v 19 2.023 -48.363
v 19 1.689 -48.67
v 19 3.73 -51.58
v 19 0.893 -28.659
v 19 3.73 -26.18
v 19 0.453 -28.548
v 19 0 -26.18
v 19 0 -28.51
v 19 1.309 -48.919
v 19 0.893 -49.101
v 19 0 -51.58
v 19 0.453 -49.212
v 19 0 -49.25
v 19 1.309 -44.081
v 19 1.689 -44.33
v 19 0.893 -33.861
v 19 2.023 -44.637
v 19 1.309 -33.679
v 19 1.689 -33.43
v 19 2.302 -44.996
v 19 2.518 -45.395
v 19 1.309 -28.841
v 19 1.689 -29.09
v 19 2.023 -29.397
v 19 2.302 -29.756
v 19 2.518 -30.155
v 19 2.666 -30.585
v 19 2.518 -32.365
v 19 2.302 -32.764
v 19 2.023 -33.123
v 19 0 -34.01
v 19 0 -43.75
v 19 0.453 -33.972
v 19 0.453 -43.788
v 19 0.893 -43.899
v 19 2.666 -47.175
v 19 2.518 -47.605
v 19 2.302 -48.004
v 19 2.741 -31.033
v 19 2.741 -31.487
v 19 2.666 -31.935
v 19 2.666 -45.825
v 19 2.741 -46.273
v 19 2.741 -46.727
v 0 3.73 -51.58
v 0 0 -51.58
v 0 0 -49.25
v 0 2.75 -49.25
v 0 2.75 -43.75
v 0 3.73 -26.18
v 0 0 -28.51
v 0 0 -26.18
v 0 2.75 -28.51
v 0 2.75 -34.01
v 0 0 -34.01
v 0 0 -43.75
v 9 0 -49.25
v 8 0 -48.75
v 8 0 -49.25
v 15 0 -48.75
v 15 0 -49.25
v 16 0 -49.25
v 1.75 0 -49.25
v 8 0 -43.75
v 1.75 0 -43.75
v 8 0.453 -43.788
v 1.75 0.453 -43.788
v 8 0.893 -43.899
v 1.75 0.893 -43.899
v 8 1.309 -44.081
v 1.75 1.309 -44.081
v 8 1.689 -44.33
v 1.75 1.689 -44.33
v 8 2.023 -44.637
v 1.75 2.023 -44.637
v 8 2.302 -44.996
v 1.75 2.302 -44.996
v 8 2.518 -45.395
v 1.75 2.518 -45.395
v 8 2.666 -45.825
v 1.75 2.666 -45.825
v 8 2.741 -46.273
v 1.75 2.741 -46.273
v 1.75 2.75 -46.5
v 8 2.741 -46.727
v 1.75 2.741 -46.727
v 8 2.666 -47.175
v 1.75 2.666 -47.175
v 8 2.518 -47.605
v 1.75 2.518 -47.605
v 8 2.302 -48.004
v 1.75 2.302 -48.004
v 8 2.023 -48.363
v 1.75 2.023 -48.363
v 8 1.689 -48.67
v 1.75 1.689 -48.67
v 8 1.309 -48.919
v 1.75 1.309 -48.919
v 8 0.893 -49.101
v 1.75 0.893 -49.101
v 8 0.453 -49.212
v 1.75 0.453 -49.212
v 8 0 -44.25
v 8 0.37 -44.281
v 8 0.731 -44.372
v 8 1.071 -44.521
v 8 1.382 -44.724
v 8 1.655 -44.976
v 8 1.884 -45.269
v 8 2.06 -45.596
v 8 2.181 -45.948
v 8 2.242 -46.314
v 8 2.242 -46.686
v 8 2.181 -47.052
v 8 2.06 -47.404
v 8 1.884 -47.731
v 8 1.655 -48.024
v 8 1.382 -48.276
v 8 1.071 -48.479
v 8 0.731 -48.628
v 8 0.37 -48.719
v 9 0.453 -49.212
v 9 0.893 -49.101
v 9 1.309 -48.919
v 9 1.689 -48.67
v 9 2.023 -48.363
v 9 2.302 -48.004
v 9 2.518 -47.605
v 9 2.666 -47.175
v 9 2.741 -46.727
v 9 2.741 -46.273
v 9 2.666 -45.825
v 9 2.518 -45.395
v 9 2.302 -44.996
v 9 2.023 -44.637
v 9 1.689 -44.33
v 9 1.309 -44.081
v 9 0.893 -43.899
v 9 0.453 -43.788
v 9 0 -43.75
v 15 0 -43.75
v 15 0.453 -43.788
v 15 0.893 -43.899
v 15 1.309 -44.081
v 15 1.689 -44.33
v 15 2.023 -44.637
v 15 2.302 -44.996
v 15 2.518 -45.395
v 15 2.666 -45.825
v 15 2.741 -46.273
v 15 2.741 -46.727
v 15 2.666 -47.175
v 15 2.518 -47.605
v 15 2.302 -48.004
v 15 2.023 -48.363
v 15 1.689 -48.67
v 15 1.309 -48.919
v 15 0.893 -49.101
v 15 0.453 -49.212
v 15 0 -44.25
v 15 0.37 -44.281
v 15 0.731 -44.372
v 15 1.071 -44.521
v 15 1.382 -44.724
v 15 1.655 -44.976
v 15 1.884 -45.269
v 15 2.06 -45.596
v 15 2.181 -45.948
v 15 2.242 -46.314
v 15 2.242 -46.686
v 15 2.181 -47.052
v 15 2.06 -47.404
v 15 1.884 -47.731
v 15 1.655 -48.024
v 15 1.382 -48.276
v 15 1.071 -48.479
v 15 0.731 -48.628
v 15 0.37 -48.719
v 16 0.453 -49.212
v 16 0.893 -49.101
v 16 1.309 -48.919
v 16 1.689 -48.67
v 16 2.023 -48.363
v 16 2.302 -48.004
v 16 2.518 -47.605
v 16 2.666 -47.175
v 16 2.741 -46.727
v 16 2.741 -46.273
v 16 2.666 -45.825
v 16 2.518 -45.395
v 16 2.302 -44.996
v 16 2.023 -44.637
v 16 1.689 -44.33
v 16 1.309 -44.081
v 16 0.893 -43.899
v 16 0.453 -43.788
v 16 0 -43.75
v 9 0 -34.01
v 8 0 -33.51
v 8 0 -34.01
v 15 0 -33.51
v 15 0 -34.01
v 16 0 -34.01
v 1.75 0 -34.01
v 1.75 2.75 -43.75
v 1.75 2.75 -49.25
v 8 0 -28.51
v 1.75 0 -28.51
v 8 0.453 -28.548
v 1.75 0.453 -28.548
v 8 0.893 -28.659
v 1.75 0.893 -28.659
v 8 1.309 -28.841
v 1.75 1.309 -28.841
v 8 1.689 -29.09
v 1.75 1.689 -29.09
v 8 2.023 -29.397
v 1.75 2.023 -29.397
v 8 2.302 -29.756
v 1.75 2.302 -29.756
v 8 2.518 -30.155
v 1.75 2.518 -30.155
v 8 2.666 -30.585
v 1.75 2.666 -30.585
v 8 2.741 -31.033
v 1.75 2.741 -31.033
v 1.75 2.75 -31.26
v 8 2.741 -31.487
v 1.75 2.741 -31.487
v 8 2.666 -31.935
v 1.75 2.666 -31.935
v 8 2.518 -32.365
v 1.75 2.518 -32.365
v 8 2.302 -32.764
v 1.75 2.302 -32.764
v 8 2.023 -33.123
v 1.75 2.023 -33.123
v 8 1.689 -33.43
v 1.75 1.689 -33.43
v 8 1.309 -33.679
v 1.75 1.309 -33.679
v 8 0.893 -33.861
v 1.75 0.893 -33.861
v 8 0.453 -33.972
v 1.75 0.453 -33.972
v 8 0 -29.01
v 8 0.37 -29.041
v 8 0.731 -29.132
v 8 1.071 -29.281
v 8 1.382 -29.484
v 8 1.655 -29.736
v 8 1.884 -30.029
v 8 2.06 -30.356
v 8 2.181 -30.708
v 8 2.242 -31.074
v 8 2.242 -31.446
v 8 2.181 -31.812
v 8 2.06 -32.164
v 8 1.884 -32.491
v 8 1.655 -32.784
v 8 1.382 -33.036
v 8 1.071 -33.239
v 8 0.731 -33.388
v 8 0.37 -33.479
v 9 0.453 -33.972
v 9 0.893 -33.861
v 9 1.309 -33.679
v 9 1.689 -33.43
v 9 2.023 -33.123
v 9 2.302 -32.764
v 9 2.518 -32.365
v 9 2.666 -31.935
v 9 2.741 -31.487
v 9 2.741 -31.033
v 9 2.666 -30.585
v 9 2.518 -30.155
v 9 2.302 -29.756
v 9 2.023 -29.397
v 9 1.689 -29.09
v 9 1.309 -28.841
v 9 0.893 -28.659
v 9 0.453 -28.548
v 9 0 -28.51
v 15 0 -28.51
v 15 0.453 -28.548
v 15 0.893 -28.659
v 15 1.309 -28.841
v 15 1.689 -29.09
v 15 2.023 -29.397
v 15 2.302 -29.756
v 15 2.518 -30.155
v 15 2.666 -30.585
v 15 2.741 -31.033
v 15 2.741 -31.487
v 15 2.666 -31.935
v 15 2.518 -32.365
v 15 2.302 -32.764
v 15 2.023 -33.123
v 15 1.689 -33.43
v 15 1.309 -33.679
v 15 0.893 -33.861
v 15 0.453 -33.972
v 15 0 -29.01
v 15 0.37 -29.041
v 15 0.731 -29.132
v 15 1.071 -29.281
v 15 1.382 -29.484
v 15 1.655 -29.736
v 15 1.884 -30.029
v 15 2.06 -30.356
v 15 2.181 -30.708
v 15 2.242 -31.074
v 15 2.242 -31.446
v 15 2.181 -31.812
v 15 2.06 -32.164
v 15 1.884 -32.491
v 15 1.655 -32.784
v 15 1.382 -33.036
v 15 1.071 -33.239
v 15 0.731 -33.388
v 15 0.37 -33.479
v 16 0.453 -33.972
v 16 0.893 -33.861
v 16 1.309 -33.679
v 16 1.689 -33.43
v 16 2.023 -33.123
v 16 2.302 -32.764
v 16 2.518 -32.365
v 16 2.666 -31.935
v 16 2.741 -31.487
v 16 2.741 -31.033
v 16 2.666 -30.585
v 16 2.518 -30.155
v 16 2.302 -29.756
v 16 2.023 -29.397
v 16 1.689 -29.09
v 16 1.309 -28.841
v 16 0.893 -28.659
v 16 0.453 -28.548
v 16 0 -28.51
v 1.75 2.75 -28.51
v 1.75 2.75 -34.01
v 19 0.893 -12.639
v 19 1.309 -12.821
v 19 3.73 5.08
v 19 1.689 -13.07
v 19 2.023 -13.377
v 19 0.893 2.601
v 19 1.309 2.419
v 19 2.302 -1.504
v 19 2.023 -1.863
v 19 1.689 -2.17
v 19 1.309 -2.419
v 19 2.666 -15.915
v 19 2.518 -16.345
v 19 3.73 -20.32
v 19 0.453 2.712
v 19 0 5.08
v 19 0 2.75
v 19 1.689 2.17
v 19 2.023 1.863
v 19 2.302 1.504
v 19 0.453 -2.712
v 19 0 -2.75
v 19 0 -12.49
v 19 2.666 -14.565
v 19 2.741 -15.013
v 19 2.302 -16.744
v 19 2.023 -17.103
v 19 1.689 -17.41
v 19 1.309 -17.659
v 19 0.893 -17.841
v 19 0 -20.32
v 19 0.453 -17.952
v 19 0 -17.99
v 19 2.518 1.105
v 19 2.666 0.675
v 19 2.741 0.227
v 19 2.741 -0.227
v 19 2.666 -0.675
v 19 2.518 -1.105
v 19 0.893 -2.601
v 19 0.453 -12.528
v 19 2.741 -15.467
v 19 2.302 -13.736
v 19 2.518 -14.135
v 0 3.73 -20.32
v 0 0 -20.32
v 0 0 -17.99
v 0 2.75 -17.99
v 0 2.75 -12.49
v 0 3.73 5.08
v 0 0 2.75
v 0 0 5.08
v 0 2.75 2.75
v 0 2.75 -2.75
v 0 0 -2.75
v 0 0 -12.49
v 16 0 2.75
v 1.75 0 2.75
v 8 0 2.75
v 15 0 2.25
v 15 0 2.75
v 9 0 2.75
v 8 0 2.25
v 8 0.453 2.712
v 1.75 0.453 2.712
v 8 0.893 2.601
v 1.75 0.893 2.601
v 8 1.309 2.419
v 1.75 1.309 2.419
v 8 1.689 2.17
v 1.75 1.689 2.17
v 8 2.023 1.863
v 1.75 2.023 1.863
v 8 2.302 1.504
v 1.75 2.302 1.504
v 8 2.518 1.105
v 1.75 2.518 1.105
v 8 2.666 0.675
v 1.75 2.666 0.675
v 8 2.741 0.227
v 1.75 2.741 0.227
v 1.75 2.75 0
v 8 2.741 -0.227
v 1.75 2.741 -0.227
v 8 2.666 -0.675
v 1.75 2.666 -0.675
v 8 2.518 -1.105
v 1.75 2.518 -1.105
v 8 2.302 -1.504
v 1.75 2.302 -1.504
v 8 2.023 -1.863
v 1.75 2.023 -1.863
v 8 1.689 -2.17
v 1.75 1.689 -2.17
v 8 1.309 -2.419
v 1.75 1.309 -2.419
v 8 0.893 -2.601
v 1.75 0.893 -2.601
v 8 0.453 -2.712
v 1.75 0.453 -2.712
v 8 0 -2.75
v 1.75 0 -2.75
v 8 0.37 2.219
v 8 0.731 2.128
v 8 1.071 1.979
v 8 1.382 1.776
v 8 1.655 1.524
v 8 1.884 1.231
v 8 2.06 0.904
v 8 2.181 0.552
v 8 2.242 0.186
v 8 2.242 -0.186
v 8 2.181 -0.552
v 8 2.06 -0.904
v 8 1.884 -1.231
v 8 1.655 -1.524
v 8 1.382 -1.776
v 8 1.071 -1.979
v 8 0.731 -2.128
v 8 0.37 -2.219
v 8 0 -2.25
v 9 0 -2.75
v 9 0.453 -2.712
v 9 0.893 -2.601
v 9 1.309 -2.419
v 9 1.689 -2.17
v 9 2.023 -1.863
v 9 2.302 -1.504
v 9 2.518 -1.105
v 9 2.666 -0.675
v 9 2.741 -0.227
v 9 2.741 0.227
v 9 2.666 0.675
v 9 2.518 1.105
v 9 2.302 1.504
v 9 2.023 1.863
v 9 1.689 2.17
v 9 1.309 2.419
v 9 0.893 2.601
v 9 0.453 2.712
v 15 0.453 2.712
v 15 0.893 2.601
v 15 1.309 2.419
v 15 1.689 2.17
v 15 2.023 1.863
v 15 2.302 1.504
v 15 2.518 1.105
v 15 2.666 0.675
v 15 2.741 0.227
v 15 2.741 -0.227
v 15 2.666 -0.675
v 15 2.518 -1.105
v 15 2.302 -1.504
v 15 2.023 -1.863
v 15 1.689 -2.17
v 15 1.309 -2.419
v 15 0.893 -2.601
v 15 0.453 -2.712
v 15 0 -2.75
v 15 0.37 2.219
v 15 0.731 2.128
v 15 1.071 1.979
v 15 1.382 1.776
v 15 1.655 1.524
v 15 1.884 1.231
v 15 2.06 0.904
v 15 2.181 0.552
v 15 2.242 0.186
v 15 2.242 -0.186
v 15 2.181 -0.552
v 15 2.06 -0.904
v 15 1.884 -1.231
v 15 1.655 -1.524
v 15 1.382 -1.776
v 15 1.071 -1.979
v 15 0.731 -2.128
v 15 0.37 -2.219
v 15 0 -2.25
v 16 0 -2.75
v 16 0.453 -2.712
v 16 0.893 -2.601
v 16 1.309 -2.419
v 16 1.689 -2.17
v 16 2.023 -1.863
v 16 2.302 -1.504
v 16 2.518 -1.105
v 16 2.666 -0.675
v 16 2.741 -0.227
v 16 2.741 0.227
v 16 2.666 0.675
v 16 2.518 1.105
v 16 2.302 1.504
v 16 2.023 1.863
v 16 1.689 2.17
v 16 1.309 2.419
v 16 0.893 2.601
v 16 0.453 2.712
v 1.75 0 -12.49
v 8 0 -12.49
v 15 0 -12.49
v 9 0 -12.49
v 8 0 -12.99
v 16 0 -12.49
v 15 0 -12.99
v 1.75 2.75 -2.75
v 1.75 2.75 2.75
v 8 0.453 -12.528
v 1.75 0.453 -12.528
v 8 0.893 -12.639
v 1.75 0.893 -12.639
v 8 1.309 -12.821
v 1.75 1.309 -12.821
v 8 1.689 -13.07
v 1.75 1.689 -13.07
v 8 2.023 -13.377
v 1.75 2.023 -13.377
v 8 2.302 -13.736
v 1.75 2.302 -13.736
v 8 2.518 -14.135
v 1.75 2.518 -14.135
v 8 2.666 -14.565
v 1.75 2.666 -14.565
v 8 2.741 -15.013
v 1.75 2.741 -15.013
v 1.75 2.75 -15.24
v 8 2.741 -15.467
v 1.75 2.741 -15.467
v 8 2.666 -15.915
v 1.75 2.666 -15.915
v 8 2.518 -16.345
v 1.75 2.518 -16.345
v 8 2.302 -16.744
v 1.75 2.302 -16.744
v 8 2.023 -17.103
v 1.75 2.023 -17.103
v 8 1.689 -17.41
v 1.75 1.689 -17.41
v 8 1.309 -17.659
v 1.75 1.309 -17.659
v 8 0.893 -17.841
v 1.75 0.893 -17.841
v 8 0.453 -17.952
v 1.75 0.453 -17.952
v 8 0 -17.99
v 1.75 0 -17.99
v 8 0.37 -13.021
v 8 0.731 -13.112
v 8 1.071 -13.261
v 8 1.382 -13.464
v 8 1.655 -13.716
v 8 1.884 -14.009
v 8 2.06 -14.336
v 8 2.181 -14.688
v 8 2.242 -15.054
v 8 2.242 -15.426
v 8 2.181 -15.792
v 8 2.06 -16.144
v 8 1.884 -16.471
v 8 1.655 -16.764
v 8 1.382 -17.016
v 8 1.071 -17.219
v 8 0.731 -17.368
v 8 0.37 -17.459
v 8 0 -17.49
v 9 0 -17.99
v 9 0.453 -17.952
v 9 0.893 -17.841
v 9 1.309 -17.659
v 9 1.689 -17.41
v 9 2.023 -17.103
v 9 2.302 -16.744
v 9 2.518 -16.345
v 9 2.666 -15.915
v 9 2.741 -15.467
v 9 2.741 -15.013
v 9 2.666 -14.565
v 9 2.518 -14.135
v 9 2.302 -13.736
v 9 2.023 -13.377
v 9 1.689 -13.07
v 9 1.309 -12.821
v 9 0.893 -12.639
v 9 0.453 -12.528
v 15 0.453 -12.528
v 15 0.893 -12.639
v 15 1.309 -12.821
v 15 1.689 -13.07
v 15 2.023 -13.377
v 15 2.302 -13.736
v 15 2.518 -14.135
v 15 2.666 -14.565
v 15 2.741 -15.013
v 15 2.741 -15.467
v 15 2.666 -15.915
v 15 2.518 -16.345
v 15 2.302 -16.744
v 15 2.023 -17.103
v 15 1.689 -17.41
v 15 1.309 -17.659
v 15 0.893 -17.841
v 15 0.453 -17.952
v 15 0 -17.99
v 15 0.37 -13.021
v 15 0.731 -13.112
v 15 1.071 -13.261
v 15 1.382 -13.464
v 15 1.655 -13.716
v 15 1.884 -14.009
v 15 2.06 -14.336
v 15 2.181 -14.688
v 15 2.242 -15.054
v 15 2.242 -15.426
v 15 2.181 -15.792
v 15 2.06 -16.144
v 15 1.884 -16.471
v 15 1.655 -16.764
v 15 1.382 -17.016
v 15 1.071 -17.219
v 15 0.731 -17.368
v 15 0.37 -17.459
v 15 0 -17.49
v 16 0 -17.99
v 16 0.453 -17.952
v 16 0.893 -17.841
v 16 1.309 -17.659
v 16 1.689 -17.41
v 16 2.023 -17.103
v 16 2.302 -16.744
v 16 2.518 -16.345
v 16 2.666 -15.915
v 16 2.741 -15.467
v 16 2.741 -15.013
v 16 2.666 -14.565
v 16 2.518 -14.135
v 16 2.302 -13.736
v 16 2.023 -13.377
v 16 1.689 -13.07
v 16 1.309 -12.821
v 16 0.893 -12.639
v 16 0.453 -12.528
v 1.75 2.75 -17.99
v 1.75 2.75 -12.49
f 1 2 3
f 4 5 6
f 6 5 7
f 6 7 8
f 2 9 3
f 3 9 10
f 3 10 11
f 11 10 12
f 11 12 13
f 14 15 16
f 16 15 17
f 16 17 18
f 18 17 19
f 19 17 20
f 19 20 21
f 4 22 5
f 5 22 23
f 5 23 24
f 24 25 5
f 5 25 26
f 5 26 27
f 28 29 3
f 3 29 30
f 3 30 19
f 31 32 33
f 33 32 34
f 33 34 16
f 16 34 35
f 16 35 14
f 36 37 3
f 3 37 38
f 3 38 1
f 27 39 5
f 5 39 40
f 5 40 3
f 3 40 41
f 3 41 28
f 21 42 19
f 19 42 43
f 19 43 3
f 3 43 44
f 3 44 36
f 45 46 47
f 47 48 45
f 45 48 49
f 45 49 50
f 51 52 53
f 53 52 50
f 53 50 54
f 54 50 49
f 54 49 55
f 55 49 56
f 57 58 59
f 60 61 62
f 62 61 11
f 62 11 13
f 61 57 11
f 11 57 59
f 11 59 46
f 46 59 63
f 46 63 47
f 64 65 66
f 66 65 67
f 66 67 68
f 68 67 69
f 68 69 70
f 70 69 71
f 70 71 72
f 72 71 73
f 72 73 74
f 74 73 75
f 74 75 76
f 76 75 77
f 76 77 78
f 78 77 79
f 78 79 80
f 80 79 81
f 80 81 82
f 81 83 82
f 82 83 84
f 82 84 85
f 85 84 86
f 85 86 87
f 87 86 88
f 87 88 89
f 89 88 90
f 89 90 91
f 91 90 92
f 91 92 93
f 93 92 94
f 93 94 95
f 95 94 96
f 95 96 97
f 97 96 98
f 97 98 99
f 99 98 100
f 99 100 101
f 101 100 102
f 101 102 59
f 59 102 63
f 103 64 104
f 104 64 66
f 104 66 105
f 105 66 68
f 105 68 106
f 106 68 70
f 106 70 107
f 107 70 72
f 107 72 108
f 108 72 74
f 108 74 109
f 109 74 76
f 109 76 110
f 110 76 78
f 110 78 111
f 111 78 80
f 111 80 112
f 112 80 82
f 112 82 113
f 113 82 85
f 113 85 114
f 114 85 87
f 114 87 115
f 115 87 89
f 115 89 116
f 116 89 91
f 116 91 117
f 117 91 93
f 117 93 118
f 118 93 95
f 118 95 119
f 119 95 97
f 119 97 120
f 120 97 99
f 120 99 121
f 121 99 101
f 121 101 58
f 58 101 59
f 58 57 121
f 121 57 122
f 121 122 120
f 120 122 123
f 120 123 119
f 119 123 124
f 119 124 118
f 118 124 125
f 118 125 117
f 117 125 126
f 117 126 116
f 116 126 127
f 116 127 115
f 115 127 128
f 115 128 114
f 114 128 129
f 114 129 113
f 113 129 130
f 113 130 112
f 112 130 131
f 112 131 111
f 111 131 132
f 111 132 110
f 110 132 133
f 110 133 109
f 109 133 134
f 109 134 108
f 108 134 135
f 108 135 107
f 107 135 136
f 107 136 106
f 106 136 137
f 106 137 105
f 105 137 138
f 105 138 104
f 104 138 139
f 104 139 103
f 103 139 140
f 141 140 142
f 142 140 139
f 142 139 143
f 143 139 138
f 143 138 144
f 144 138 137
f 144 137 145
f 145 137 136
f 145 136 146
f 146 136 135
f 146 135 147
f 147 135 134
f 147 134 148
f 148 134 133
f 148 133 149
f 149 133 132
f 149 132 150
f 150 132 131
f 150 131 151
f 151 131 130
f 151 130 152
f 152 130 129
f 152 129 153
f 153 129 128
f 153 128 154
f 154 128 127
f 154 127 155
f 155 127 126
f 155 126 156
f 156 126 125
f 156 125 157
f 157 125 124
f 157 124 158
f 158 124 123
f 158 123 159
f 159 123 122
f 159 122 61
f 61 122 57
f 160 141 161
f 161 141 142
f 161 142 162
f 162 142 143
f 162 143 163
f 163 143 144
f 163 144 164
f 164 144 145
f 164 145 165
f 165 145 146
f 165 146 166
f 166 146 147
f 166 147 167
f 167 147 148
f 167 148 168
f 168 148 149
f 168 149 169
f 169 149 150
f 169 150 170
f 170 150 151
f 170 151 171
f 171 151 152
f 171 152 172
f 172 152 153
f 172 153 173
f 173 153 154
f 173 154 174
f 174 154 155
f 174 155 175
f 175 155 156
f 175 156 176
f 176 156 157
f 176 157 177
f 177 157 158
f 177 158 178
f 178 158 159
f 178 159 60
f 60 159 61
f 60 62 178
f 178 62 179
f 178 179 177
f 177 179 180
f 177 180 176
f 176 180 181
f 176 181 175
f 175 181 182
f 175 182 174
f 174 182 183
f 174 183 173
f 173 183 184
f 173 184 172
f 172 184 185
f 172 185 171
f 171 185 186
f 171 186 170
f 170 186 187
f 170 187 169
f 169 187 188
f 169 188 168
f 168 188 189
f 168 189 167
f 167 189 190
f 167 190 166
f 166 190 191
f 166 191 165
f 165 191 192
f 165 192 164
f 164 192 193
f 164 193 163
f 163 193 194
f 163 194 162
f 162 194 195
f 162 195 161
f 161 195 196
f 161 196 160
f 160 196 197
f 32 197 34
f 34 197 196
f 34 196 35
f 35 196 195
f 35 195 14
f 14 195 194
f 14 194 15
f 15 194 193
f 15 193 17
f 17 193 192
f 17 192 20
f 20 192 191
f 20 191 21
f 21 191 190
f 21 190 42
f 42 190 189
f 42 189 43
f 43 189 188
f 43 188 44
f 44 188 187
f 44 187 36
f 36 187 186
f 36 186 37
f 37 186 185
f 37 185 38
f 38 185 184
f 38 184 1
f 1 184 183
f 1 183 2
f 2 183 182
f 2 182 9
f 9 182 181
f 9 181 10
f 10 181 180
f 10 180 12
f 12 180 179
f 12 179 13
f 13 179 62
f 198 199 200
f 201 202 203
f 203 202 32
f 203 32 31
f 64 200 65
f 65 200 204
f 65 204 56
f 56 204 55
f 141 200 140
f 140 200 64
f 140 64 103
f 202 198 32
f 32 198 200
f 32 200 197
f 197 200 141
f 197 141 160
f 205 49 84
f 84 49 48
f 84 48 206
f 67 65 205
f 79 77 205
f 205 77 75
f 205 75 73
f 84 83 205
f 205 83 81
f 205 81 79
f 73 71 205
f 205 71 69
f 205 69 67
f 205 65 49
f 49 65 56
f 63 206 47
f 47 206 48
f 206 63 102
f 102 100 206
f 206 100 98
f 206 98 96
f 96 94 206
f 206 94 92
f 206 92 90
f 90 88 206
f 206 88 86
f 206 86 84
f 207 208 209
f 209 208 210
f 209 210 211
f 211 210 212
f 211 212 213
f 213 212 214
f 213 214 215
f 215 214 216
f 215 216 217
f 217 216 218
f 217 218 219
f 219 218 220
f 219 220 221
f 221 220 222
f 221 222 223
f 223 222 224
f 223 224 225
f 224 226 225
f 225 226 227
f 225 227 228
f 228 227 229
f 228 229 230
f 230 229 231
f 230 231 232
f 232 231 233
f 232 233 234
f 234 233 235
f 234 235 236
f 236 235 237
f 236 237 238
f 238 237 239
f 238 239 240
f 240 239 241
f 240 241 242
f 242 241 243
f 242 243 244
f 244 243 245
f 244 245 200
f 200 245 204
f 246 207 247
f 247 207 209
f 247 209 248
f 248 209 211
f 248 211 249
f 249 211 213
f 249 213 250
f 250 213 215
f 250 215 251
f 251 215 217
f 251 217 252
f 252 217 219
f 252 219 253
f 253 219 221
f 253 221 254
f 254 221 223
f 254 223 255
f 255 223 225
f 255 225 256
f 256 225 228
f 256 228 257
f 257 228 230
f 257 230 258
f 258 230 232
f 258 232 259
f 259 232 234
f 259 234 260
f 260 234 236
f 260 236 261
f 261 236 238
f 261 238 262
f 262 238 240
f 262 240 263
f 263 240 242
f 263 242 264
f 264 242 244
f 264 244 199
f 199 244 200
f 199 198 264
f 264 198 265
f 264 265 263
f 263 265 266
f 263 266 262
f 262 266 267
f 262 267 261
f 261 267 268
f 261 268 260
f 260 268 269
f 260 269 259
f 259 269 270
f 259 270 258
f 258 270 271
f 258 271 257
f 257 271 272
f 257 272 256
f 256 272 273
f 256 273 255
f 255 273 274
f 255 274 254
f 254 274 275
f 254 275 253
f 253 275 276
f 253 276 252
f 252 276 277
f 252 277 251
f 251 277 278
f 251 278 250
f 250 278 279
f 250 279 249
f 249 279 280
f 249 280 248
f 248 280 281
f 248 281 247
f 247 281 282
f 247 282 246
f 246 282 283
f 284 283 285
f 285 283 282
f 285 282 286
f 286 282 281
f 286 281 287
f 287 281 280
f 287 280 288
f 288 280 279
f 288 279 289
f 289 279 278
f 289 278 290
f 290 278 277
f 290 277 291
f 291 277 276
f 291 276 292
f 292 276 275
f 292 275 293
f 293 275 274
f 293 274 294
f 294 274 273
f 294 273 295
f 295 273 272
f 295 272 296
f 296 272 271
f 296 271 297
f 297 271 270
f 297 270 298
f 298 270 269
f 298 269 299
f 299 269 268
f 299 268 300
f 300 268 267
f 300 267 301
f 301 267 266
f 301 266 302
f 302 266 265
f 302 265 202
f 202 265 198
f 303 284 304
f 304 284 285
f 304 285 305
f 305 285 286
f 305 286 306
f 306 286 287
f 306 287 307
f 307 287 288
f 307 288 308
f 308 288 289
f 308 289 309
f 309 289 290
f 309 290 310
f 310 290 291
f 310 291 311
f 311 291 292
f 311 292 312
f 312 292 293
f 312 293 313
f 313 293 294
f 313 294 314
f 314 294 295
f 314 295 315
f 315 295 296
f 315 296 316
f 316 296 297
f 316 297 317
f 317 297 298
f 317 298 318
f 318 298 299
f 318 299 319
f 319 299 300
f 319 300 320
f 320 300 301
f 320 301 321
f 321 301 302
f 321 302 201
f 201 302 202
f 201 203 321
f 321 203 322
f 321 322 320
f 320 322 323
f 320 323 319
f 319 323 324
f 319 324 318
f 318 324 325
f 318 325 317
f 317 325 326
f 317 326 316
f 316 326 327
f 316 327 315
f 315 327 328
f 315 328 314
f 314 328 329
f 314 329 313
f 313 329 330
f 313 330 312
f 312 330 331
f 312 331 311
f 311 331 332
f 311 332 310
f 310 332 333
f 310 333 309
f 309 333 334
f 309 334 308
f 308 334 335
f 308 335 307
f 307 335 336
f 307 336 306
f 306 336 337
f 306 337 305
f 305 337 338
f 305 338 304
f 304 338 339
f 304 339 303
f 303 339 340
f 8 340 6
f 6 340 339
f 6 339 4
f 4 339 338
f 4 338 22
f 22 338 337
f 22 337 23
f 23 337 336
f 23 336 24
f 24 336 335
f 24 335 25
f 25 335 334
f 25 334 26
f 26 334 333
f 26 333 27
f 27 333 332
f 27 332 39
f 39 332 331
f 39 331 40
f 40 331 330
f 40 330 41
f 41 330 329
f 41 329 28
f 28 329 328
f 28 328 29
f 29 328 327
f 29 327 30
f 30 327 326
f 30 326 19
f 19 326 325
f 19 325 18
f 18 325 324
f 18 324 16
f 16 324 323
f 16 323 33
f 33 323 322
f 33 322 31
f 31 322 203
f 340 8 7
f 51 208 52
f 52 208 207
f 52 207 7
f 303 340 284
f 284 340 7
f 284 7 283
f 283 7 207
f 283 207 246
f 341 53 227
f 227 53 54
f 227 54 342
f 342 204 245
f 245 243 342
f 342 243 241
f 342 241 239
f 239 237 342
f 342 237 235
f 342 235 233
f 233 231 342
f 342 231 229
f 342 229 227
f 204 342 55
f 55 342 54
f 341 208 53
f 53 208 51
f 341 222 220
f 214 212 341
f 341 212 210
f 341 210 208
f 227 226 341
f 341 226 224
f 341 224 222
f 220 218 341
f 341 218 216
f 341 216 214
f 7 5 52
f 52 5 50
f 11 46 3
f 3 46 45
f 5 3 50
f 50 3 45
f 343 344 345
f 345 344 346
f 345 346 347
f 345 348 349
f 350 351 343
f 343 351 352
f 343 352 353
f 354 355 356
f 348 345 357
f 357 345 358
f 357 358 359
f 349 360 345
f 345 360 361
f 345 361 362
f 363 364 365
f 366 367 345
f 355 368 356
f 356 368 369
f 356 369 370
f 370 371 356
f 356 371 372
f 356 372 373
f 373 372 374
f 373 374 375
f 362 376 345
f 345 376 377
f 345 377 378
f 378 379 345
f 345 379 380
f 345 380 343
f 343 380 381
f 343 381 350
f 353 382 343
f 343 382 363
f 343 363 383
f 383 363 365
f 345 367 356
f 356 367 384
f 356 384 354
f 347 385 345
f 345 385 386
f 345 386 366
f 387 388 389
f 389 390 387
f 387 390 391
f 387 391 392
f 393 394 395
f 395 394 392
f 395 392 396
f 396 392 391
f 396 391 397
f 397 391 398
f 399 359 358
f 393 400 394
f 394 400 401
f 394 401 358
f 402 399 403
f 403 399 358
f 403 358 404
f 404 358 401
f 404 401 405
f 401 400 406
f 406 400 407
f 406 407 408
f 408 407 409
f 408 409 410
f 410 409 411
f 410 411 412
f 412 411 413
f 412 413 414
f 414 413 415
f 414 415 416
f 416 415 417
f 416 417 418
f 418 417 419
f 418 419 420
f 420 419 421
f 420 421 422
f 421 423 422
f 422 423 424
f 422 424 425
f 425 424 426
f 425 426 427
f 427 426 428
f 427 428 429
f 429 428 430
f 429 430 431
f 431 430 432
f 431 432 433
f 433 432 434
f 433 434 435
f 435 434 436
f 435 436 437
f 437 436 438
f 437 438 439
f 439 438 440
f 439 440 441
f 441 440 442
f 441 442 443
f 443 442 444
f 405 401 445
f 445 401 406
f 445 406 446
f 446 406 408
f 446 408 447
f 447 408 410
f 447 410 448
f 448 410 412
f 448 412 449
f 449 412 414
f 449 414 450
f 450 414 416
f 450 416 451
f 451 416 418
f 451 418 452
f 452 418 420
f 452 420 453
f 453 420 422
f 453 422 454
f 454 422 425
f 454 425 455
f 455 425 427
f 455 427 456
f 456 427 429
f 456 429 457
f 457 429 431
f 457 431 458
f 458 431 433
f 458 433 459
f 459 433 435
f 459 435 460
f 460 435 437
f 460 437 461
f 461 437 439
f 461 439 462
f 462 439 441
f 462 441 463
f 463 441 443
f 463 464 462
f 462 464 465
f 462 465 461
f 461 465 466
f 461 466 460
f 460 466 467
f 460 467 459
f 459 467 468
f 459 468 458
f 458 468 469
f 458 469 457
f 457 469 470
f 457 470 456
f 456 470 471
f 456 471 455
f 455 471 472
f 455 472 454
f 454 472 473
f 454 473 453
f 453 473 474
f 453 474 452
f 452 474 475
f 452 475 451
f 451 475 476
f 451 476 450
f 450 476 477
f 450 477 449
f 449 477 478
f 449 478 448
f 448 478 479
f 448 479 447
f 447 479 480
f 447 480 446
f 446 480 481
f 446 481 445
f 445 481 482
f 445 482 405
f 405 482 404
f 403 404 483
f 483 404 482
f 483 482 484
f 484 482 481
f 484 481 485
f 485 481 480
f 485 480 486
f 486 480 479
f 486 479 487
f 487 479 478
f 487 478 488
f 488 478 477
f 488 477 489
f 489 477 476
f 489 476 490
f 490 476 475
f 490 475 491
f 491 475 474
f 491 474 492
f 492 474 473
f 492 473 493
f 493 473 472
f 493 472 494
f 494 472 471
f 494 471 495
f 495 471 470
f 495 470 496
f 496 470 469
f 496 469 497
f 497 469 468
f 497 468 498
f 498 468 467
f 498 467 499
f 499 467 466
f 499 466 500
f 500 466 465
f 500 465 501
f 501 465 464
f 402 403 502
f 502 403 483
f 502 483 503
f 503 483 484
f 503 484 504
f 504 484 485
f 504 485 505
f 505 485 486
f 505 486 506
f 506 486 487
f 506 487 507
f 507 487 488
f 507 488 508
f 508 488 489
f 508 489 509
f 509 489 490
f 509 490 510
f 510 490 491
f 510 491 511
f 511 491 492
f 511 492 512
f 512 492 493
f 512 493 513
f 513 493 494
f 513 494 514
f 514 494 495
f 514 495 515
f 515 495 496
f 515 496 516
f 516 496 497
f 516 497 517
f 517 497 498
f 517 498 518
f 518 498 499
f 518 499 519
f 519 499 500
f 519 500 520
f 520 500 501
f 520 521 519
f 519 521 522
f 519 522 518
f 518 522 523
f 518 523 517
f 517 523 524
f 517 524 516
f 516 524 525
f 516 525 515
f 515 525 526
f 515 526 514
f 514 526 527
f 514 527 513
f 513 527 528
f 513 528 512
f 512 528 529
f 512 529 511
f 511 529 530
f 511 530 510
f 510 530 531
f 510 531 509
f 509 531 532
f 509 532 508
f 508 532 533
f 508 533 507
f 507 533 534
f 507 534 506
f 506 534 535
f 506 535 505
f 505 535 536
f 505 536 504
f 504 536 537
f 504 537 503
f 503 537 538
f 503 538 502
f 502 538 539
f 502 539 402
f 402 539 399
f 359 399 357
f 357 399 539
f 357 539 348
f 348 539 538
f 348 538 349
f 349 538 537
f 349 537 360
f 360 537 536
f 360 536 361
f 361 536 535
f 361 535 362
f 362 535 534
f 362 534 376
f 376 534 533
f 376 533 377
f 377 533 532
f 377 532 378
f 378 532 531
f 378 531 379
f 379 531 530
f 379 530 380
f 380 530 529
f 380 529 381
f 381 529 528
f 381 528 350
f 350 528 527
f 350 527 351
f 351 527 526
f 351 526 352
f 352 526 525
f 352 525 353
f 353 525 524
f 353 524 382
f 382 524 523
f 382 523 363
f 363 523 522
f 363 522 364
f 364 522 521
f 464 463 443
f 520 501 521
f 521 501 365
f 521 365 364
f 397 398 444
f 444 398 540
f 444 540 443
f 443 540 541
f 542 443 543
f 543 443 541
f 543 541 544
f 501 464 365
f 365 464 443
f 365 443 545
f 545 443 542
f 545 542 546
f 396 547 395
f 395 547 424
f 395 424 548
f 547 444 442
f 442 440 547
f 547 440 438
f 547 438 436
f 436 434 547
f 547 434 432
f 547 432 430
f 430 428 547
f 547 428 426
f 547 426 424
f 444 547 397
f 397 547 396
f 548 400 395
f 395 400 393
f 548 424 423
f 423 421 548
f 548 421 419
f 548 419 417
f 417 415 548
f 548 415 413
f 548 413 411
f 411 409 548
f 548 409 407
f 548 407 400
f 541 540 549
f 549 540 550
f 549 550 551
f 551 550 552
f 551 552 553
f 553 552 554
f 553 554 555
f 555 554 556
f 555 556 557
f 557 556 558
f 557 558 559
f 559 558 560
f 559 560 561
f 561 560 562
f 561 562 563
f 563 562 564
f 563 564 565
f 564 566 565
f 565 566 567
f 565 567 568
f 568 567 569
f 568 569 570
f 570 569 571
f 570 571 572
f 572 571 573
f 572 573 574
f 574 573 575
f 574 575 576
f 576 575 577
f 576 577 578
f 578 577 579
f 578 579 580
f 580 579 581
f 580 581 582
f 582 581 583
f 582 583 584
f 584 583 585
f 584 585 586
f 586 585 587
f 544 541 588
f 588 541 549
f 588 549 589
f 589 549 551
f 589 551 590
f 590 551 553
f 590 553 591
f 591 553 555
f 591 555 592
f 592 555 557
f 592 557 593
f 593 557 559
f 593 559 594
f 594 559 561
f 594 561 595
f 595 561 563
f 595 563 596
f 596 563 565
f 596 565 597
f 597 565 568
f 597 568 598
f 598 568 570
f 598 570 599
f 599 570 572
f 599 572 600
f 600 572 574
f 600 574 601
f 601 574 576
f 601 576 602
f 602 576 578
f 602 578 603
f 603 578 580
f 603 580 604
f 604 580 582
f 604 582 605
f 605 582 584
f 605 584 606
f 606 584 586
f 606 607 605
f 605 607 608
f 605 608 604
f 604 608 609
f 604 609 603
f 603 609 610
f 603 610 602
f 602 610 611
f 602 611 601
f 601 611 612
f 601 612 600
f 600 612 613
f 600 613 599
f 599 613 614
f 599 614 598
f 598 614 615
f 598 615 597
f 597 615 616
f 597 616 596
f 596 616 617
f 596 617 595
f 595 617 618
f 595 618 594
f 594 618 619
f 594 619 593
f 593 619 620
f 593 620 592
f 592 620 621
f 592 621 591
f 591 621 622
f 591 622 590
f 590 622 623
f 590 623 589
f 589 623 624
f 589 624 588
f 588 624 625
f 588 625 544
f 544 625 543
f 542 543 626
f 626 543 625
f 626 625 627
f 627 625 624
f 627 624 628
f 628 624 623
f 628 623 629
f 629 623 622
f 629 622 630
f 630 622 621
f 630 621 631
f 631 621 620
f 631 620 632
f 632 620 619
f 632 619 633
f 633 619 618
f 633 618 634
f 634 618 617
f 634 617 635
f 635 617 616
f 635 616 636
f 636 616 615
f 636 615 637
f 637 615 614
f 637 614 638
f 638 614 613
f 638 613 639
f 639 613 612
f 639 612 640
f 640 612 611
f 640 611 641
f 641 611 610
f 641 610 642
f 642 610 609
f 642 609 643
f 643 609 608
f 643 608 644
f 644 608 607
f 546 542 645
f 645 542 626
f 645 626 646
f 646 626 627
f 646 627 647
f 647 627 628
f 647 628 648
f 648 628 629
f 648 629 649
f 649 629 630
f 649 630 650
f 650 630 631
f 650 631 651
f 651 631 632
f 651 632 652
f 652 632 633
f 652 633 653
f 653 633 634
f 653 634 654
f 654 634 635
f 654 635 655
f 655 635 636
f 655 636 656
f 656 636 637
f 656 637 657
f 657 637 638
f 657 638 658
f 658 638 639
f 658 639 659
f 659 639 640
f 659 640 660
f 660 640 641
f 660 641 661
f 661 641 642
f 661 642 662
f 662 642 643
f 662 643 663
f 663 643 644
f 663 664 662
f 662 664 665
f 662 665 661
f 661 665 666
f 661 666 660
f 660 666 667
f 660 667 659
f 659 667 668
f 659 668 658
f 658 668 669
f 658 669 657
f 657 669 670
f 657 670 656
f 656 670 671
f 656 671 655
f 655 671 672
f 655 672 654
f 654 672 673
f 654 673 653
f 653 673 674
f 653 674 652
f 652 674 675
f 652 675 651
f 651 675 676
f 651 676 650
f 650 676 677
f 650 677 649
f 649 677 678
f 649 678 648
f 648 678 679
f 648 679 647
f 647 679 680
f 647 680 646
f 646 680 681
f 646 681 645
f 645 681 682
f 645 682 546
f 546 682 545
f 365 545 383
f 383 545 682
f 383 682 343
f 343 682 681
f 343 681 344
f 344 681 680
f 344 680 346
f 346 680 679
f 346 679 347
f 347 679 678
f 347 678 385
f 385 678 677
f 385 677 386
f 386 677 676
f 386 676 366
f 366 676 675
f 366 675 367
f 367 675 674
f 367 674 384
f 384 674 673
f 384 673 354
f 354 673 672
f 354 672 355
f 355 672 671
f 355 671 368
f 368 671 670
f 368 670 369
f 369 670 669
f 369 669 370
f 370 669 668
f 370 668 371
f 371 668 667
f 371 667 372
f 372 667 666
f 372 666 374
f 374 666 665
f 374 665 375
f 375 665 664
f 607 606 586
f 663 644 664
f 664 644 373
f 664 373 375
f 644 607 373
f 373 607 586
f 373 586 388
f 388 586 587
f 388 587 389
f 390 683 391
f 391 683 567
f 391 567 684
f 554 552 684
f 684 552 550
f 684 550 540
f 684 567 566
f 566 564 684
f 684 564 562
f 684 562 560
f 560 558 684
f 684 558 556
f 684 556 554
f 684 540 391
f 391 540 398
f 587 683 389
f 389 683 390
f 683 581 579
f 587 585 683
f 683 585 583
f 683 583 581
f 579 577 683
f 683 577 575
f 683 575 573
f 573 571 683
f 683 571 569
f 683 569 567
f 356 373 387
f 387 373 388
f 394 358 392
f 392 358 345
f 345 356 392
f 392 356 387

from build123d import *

# Parameters (mm, degrees)
REVOLVE1_ANGLE           = 180
BOSS_EXTRUDE1_DEPTH      = 9.25
BOSS_EXTRUDE1_DEPTH_BACK = 9.25
BOSS_EXTRUDE2_START      = 3.5
BOSS_EXTRUDE2_DEPTH      = 5.75
BOSS_EXTRUDE3_START      = -3.5
BOSS_EXTRUDE3_DEPTH      = 5.75
SKETCH13_W               = 5.5
SKETCH13_H               = 2.75
CUT_EXTRUDE9_DEPTH       = 1.75
SKETCH16_W               = 19
SKETCH16_H               = 4.169999961
CUT_EXTRUDE10_DEPTH      = 6
SKETCH17_W               = 19
SKETCH17_H               = 25.400000078
CUT_EXTRUDE13_DEPTH      = 1.27


with BuildPart() as part:
    # Sketch6 → Revolve1 (revolve)
    with BuildSketch(Plane(origin=(0, 0, 0), x_dir=(1, 0, 0), z_dir=(0, 1, 0))):
        Polygon((0, 5), (0, 2.75), (8, 2.75), (8, 2.25), (9, 2.75), (15, 2.75), (15, 2.25), (16, 2.75), (19, 2.75), (19, 5), align=None)
    revolve(axis=Axis((0, 0, 0), (1, 0, 0)), revolution_arc=REVOLVE1_ANGLE)

    # Sketch9 → Boss-Extrude1 (add, two sides)
    with BuildSketch(Plane.XY) as boss_extrude1_sk:
        Polygon((0, 3.25), (0, 5), (19, 5), (19, 2.75), align=None)
    extrude(amount=BOSS_EXTRUDE1_DEPTH)
    extrude(boss_extrude1_sk.sketch, amount=-BOSS_EXTRUDE1_DEPTH_BACK)

    # Sketch9<3> → Boss-Extrude2 (add)
    with BuildSketch(Plane.XY.offset(BOSS_EXTRUDE2_START)):
        Polygon((0, 3.25), (19, 2.75), (19, 0), (0, 0), align=None)
    extrude(amount=BOSS_EXTRUDE2_DEPTH)

    # Sketch9<4> → Boss-Extrude3 (add)
    with BuildSketch(Plane.XY.offset(BOSS_EXTRUDE3_START)):
        Polygon((0, 3.25), (19, 2.75), (19, 0), (0, 0), align=None)
    extrude(amount=-BOSS_EXTRUDE3_DEPTH)

    # Sketch13 → Cut-Extrude9 (cut)
    with BuildSketch(Plane.ZY):
        with Locations((0, 1.375)):
            Rectangle(SKETCH13_W, SKETCH13_H)
    extrude(amount=-CUT_EXTRUDE9_DEPTH, mode=Mode.SUBTRACT)

    # Mirror4: part across plane


with BuildPart() as part_1:
    add(part.part)
    add(part.part.mirror(Plane.XY.offset(-7.62)))

    # Sketch16 → Cut-Extrude10 (cut, through all)
    with BuildSketch(Plane(origin=(0, 5, 0), x_dir=(1, 0, 0), z_dir=(0, 1, 0))):
        with Locations((9.5, 22.40500002)):
            Rectangle(SKETCH16_W, SKETCH16_H)
        with Locations((9.5, -7.16500002)):
            Rectangle(SKETCH16_W, SKETCH16_H)
    extrude(amount=-CUT_EXTRUDE10_DEPTH, mode=Mode.SUBTRACT)

    # Sketch17 → Cut-Extrude13 (cut)
    with BuildSketch(Plane(origin=(0, 5, 0), x_dir=(1, 0, 0), z_dir=(0, 1, 0))):
        with Locations((9.5, 7.62)):
            Rectangle(SKETCH17_W, SKETCH17_H)
    extrude(amount=-CUT_EXTRUDE13_DEPTH, mode=Mode.SUBTRACT)


with BuildPart() as body_2:
    # Mirror1: mirrored copy
    add(part_1.part.mirror(Plane(origin=(0, 0, -23.25), x_dir=(1, 0, 0), z_dir=(0, 0, -1))))


solid = Compound([part_1.part, body_2.part])
